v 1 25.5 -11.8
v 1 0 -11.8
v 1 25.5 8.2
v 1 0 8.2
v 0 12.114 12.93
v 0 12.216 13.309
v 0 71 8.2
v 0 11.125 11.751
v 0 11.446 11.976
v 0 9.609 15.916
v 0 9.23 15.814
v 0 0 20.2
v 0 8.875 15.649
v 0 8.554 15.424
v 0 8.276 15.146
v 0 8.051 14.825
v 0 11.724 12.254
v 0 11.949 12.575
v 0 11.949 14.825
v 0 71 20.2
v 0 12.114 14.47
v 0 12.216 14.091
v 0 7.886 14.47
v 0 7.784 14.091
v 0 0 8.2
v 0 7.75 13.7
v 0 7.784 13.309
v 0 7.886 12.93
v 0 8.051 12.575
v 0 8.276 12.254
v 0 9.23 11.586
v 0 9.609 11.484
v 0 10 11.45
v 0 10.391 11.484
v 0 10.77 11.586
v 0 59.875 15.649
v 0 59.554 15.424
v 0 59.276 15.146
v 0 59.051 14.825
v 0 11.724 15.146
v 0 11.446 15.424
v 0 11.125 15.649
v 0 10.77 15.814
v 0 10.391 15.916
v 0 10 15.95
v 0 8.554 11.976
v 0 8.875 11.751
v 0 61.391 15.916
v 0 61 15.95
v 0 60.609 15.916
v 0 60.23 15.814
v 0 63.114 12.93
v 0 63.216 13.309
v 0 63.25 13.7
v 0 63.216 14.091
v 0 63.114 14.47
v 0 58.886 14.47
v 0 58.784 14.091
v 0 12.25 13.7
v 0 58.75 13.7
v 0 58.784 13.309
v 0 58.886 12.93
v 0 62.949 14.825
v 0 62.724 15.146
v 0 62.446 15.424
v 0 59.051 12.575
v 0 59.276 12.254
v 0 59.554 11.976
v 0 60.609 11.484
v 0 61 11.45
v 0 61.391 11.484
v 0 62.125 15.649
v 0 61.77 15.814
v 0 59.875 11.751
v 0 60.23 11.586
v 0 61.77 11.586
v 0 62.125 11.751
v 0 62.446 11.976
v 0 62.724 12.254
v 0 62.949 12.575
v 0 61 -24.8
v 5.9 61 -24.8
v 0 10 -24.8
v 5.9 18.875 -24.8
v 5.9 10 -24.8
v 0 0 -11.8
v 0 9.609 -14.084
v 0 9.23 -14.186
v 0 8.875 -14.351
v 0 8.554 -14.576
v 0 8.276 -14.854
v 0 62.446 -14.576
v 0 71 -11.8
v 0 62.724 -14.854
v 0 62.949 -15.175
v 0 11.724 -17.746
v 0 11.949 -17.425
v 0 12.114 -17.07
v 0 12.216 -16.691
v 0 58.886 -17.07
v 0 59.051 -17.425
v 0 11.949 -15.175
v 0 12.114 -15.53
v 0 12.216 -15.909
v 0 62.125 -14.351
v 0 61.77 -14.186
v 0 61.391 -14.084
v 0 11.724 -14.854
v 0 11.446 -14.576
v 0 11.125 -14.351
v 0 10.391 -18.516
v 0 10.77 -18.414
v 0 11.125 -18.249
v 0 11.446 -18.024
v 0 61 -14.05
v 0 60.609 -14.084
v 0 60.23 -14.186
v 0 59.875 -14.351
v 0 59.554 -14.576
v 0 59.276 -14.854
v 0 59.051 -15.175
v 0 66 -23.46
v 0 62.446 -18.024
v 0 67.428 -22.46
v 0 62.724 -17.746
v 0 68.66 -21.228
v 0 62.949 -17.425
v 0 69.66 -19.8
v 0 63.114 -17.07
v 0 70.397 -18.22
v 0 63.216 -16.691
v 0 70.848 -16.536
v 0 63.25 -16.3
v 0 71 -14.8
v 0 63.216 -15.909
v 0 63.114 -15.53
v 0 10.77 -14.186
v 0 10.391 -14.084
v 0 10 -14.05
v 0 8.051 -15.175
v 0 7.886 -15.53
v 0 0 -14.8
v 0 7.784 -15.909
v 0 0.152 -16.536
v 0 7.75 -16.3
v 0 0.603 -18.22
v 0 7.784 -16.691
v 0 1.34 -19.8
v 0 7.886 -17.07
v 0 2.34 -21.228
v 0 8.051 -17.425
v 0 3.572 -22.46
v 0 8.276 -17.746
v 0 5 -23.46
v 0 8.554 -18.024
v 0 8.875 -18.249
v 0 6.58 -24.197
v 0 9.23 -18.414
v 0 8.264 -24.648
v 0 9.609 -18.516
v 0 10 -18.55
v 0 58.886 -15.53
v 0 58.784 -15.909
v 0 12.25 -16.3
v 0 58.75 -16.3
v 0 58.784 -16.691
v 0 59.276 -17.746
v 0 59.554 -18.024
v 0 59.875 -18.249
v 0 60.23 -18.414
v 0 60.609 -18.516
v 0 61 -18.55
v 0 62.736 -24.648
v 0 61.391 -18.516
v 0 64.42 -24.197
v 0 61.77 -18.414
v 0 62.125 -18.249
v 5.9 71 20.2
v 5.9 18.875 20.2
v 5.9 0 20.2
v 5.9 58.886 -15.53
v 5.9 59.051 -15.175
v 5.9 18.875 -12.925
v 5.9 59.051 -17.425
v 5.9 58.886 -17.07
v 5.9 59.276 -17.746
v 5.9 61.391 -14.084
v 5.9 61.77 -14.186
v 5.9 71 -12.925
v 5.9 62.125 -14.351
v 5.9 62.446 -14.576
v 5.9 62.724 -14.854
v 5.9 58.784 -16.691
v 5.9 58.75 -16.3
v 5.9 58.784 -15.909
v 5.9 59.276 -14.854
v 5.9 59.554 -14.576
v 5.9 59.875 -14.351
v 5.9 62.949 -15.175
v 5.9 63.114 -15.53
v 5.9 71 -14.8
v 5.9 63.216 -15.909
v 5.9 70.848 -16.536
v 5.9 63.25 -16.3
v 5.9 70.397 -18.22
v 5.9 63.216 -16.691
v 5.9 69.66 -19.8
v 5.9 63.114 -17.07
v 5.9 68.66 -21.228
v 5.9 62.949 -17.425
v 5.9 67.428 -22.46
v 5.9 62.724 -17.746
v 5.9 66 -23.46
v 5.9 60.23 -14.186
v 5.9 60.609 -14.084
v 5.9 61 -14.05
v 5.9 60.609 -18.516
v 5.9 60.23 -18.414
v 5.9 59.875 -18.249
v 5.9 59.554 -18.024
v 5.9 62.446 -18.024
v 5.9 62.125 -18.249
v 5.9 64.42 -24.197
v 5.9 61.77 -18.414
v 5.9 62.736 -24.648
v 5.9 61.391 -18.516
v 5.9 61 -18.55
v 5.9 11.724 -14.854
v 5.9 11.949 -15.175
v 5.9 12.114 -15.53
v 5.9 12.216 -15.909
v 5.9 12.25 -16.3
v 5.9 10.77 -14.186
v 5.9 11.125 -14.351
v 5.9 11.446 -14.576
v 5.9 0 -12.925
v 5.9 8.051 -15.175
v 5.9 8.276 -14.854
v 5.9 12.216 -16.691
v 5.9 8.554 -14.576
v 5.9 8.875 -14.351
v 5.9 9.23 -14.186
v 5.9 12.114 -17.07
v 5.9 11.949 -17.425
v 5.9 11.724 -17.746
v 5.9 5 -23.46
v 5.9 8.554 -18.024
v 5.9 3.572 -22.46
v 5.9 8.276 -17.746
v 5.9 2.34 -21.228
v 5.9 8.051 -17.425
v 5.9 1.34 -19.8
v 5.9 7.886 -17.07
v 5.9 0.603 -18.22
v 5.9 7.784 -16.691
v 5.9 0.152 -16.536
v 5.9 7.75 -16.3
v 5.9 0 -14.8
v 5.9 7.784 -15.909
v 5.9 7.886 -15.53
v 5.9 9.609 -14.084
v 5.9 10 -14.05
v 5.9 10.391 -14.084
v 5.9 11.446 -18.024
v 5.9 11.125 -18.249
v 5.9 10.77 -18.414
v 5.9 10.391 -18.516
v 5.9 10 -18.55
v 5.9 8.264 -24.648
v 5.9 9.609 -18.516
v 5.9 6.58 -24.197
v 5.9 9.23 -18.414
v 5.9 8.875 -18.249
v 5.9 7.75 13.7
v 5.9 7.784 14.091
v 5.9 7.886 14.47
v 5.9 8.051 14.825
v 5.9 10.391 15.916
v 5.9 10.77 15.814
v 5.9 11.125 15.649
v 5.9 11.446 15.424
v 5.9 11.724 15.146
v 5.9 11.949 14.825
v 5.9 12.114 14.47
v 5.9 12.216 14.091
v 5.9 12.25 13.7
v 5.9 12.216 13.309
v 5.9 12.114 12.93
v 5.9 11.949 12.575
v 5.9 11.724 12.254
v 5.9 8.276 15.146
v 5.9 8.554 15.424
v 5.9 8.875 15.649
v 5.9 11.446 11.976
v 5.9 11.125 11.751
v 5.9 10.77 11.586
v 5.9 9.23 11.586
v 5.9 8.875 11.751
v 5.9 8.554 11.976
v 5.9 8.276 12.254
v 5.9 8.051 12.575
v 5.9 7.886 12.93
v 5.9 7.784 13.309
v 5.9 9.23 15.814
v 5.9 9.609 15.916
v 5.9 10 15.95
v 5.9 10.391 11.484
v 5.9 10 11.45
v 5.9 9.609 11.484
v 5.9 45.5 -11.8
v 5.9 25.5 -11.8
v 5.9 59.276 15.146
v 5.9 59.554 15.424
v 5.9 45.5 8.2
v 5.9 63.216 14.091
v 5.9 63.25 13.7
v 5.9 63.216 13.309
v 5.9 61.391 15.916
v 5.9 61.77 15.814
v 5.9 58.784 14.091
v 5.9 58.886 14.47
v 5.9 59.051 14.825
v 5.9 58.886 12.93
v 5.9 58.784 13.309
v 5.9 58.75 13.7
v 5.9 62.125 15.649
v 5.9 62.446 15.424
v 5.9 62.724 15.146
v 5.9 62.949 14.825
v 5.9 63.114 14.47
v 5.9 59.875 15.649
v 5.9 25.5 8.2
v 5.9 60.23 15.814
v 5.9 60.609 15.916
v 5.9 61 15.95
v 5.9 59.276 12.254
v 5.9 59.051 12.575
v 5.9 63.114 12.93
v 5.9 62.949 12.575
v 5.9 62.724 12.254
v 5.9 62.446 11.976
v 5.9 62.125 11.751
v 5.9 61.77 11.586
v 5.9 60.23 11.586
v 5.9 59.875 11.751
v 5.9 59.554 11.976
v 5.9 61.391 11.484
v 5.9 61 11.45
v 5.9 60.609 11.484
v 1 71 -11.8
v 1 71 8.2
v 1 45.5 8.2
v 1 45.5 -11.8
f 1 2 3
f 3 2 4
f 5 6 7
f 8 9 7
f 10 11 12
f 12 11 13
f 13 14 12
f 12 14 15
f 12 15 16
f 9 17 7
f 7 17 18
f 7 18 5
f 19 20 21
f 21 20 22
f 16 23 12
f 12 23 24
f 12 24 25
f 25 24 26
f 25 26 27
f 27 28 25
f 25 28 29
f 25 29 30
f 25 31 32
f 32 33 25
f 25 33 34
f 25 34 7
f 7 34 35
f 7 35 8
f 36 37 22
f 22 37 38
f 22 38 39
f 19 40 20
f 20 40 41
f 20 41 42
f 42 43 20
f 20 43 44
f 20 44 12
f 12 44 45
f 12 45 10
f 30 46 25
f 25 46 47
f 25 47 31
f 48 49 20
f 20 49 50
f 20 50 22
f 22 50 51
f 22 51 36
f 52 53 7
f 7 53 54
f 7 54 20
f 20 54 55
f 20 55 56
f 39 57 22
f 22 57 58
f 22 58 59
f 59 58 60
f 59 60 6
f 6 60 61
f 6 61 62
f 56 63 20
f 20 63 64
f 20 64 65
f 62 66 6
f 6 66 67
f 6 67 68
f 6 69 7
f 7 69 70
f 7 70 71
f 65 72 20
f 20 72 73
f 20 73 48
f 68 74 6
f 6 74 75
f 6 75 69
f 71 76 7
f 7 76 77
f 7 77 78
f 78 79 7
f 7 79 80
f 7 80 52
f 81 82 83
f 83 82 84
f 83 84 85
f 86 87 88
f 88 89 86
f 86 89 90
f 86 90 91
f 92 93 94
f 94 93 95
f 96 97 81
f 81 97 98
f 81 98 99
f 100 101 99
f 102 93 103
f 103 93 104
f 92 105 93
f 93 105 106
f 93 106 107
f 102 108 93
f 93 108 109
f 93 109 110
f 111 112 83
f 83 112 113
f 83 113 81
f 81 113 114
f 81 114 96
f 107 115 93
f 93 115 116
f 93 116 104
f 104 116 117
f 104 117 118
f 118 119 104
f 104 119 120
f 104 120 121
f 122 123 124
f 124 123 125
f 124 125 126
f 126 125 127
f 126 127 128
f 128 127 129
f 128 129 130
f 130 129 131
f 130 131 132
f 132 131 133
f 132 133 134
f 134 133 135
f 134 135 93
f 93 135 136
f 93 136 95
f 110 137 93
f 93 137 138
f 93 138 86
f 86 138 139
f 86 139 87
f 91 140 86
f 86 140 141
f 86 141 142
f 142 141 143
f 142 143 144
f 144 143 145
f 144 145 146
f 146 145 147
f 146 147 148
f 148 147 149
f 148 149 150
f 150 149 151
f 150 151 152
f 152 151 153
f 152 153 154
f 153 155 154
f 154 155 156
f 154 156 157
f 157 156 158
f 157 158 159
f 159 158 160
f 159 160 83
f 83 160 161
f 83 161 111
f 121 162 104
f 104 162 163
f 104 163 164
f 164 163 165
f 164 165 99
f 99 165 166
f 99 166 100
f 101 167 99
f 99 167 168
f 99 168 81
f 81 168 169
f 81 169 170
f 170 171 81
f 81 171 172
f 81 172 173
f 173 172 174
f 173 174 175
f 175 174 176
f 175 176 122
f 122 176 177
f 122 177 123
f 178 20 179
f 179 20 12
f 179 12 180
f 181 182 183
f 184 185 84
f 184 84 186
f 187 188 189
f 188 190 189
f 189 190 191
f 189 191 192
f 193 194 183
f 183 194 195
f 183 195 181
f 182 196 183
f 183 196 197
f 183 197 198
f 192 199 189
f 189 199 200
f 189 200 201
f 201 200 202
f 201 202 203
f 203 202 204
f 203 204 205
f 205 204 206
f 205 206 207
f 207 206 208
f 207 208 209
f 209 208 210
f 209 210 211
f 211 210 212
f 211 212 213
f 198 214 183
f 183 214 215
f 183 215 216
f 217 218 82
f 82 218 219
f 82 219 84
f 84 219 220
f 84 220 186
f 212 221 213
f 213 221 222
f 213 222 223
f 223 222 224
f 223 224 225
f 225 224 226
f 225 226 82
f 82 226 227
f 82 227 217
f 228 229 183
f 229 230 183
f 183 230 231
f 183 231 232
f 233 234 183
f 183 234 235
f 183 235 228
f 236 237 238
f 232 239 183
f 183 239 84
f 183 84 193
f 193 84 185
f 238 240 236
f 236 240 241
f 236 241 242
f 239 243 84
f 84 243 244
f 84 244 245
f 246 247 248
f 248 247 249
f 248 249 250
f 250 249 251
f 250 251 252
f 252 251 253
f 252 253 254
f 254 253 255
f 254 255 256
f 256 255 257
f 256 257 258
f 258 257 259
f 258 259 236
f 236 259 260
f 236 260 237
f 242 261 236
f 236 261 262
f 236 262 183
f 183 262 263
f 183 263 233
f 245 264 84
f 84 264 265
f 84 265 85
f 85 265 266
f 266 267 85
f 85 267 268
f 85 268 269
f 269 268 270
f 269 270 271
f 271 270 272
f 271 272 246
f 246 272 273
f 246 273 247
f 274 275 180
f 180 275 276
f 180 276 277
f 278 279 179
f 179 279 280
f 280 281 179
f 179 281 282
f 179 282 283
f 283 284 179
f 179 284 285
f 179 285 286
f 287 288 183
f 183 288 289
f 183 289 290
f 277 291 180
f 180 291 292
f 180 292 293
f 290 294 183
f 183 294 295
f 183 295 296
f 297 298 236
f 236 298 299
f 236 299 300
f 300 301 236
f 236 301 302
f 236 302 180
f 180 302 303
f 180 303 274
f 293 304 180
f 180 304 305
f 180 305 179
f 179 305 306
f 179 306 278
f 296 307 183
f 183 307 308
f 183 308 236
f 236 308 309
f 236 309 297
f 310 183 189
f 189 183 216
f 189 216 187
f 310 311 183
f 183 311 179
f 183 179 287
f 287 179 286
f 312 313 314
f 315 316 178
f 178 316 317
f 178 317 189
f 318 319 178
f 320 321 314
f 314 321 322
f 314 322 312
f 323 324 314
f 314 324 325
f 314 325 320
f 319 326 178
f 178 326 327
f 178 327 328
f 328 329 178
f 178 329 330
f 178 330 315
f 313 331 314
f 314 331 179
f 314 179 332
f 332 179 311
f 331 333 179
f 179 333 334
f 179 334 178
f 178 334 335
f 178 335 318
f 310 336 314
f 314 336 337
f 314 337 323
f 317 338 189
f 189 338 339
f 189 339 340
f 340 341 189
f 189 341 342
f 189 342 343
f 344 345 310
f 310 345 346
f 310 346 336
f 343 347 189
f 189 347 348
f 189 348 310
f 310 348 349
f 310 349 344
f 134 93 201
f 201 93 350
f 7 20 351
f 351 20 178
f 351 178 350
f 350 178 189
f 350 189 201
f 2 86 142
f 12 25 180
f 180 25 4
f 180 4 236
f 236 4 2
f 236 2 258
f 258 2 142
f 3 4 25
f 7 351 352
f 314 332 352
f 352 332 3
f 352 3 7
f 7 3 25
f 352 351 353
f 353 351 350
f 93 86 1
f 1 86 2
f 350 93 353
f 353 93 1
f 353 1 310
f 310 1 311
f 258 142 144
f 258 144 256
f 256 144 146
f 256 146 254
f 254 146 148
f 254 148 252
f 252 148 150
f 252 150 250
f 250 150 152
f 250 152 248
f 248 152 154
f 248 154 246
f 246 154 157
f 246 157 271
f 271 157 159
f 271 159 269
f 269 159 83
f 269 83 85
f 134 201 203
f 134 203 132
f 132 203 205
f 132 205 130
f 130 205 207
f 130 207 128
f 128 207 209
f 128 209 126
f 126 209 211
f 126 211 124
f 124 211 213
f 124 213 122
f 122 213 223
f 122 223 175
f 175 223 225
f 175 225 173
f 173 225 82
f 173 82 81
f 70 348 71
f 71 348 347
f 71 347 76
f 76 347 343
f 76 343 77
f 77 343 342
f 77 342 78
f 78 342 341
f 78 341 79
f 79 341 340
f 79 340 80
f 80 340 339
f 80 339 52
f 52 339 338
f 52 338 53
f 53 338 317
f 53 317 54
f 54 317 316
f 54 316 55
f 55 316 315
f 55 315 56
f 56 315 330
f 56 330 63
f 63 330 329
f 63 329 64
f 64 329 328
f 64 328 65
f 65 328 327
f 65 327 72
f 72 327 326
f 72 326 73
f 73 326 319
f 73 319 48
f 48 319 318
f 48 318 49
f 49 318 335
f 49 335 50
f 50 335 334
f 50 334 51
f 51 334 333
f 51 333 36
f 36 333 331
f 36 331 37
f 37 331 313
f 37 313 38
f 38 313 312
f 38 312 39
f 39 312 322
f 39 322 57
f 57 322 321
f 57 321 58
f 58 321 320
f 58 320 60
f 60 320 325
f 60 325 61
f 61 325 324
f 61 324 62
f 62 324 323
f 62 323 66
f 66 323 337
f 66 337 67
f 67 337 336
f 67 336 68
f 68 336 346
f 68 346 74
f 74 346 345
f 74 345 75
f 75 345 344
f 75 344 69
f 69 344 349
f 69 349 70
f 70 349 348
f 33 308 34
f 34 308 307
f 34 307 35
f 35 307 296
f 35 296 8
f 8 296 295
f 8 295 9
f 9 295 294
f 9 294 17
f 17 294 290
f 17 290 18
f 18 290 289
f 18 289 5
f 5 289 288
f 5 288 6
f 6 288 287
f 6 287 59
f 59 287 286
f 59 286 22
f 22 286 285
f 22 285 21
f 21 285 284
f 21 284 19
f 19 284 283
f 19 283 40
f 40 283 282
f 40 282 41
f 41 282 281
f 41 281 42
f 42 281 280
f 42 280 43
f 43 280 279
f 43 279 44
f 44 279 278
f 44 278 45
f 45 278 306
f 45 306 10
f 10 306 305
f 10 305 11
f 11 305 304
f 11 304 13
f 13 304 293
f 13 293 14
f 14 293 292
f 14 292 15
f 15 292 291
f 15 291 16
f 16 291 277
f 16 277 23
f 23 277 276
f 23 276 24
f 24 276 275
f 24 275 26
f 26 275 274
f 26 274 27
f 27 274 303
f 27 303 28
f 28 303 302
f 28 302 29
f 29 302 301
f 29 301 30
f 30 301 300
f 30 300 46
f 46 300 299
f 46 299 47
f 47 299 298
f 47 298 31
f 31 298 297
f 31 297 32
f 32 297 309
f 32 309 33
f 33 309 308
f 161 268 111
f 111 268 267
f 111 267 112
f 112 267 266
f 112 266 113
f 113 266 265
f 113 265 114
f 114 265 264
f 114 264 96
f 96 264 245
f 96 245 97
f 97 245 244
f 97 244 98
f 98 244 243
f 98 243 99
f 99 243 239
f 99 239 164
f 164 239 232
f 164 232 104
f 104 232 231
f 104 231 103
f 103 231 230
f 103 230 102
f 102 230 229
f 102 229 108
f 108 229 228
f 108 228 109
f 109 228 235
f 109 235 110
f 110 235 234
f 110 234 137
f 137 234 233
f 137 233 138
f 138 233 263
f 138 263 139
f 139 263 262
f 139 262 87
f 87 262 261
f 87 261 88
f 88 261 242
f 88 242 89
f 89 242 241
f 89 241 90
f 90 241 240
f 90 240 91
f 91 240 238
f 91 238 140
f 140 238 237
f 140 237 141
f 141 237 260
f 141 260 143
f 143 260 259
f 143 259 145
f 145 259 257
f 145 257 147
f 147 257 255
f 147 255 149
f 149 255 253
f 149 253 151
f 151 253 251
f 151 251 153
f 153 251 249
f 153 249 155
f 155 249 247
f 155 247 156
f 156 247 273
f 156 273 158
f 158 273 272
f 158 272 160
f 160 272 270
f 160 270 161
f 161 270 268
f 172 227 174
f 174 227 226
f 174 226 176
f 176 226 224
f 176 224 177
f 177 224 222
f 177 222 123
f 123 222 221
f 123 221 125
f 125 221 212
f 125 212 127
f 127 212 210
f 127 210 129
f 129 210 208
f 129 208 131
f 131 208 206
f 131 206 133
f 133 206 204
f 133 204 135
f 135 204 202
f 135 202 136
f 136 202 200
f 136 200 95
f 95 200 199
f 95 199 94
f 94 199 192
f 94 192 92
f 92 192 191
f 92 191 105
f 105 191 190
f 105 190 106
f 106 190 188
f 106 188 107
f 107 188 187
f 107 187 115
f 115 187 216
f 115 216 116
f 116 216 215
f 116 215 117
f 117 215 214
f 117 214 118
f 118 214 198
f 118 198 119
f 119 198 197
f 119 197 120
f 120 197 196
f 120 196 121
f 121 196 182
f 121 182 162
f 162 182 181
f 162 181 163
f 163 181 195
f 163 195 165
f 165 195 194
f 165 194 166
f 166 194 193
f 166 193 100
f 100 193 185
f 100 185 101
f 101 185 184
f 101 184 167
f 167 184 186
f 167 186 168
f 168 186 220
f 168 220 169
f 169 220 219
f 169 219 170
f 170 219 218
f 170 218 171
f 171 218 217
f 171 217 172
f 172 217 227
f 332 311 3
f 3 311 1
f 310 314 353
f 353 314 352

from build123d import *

# Parameters (mm, degrees)
SKETCH1_W           = 5.9
SKETCH1_H           = 45
BOSS_EXTRUDE1_DEPTH = 71
CUT_EXTRUDE2_REACH  = 73
SKETCH3_W           = 1
SKETCH3_H           = 20
FILLET1_R           = 10
CUT_EXTRUDE3_REACH  = 7.9
SKETCH4_R           = 2.25
CUT_EXTRUDE4_REACH  = 7.9
SKETCH5_W           = 20
SKETCH5_H           = 20


with BuildPart() as part:
    # Sketch1 → Boss-Extrude1 (new body)
    with BuildSketch(Plane(origin=(0, 0, 0), x_dir=(1, 0, 0), z_dir=(0, 1, 0))):
        with Locations((2.95, 2.3)):
            Rectangle(SKETCH1_W, SKETCH1_H)
    extrude(amount=BOSS_EXTRUDE1_DEPTH)

    # Sketch3 → Cut-Extrude2 (cut, up to next)
    with BuildSketch(Plane.XZ, mode=Mode.PRIVATE) as cut_extrude2_sk1:
        with Locations((0.5, -1.8)):
            Rectangle(SKETCH3_W, SKETCH3_H)
    cut_extrude2_tool1 = extrude(cut_extrude2_sk1.sketch, amount=-CUT_EXTRUDE2_REACH, mode=Mode.PRIVATE) & part.part
    add(cut_extrude2_tool1.solids().sort_by_distance((0.5, 0, -1.8))[0], mode=Mode.SUBTRACT)

    # Fillet1
    fillet1_edges = [part.edges().sort_by_distance(p)[0] for p in [
        (2.95, 71, -24.8),
        (2.95, 0, -24.8),
    ]]
    fillet(fillet1_edges, radius=FILLET1_R)

    # Sketch4 → Cut-Extrude3 (cut, up to next)
    with BuildSketch(Plane(origin=(5.9, 0, 0), x_dir=(0, 0, -1), z_dir=(1, 0, 0)), mode=Mode.PRIVATE) as cut_extrude3_sk1:
        with Locations((-13.7, 61)):
            Circle(SKETCH4_R)
    cut_extrude3_tool1 = extrude(cut_extrude3_sk1.sketch, amount=-CUT_EXTRUDE3_REACH, mode=Mode.PRIVATE) & part.part
    add(cut_extrude3_tool1.solids().sort_by_distance((5.9, 61, 13.7))[0], mode=Mode.SUBTRACT)
    # Sketch4 → Cut-Extrude3 (cut, up to next)
    with BuildSketch(Plane(origin=(5.9, 0, 0), x_dir=(0, 0, -1), z_dir=(1, 0, 0)), mode=Mode.PRIVATE) as cut_extrude3_sk2:
        with Locations((-13.7, 10)):
            Circle(SKETCH4_R)
    cut_extrude3_tool2 = extrude(cut_extrude3_sk2.sketch, amount=-CUT_EXTRUDE3_REACH, mode=Mode.PRIVATE) & part.part
    add(cut_extrude3_tool2.solids().sort_by_distance((5.9, 10, 13.7))[0], mode=Mode.SUBTRACT)
    # Sketch4 → Cut-Extrude3 (cut, up to next)
    with BuildSketch(Plane(origin=(5.9, 0, 0), x_dir=(0, 0, -1), z_dir=(1, 0, 0)), mode=Mode.PRIVATE) as cut_extrude3_sk3:
        with Locations((16.3, 10)):
            Circle(SKETCH4_R)
    cut_extrude3_tool3 = extrude(cut_extrude3_sk3.sketch, amount=-CUT_EXTRUDE3_REACH, mode=Mode.PRIVATE) & part.part
    add(cut_extrude3_tool3.solids().sort_by_distance((5.9, 10, -16.3))[0], mode=Mode.SUBTRACT)
    # Sketch4 → Cut-Extrude3 (cut, up to next)
    with BuildSketch(Plane(origin=(5.9, 0, 0), x_dir=(0, 0, -1), z_dir=(1, 0, 0)), mode=Mode.PRIVATE) as cut_extrude3_sk4:
        with Locations((16.3, 61)):
            Circle(SKETCH4_R)
    cut_extrude3_tool4 = extrude(cut_extrude3_sk4.sketch, amount=-CUT_EXTRUDE3_REACH, mode=Mode.PRIVATE) & part.part
    add(cut_extrude3_tool4.solids().sort_by_distance((5.9, 61, -16.3))[0], mode=Mode.SUBTRACT)

    # Sketch5 → Cut-Extrude4 (cut, up to next)
    with BuildSketch(Plane(origin=(5.9, 0, 0), x_dir=(0, 0, -1), z_dir=(1, 0, 0)), mode=Mode.PRIVATE) as cut_extrude4_sk1:
        with Locations((1.8, 35.5)):
            Rectangle(SKETCH5_W, SKETCH5_H)
    cut_extrude4_tool1 = extrude(cut_extrude4_sk1.sketch, amount=-CUT_EXTRUDE4_REACH, mode=Mode.PRIVATE) & part.part
    add(cut_extrude4_tool1.solids().sort_by_distance((5.9, 35.5, -1.8))[0], mode=Mode.SUBTRACT)


solid = part.part
